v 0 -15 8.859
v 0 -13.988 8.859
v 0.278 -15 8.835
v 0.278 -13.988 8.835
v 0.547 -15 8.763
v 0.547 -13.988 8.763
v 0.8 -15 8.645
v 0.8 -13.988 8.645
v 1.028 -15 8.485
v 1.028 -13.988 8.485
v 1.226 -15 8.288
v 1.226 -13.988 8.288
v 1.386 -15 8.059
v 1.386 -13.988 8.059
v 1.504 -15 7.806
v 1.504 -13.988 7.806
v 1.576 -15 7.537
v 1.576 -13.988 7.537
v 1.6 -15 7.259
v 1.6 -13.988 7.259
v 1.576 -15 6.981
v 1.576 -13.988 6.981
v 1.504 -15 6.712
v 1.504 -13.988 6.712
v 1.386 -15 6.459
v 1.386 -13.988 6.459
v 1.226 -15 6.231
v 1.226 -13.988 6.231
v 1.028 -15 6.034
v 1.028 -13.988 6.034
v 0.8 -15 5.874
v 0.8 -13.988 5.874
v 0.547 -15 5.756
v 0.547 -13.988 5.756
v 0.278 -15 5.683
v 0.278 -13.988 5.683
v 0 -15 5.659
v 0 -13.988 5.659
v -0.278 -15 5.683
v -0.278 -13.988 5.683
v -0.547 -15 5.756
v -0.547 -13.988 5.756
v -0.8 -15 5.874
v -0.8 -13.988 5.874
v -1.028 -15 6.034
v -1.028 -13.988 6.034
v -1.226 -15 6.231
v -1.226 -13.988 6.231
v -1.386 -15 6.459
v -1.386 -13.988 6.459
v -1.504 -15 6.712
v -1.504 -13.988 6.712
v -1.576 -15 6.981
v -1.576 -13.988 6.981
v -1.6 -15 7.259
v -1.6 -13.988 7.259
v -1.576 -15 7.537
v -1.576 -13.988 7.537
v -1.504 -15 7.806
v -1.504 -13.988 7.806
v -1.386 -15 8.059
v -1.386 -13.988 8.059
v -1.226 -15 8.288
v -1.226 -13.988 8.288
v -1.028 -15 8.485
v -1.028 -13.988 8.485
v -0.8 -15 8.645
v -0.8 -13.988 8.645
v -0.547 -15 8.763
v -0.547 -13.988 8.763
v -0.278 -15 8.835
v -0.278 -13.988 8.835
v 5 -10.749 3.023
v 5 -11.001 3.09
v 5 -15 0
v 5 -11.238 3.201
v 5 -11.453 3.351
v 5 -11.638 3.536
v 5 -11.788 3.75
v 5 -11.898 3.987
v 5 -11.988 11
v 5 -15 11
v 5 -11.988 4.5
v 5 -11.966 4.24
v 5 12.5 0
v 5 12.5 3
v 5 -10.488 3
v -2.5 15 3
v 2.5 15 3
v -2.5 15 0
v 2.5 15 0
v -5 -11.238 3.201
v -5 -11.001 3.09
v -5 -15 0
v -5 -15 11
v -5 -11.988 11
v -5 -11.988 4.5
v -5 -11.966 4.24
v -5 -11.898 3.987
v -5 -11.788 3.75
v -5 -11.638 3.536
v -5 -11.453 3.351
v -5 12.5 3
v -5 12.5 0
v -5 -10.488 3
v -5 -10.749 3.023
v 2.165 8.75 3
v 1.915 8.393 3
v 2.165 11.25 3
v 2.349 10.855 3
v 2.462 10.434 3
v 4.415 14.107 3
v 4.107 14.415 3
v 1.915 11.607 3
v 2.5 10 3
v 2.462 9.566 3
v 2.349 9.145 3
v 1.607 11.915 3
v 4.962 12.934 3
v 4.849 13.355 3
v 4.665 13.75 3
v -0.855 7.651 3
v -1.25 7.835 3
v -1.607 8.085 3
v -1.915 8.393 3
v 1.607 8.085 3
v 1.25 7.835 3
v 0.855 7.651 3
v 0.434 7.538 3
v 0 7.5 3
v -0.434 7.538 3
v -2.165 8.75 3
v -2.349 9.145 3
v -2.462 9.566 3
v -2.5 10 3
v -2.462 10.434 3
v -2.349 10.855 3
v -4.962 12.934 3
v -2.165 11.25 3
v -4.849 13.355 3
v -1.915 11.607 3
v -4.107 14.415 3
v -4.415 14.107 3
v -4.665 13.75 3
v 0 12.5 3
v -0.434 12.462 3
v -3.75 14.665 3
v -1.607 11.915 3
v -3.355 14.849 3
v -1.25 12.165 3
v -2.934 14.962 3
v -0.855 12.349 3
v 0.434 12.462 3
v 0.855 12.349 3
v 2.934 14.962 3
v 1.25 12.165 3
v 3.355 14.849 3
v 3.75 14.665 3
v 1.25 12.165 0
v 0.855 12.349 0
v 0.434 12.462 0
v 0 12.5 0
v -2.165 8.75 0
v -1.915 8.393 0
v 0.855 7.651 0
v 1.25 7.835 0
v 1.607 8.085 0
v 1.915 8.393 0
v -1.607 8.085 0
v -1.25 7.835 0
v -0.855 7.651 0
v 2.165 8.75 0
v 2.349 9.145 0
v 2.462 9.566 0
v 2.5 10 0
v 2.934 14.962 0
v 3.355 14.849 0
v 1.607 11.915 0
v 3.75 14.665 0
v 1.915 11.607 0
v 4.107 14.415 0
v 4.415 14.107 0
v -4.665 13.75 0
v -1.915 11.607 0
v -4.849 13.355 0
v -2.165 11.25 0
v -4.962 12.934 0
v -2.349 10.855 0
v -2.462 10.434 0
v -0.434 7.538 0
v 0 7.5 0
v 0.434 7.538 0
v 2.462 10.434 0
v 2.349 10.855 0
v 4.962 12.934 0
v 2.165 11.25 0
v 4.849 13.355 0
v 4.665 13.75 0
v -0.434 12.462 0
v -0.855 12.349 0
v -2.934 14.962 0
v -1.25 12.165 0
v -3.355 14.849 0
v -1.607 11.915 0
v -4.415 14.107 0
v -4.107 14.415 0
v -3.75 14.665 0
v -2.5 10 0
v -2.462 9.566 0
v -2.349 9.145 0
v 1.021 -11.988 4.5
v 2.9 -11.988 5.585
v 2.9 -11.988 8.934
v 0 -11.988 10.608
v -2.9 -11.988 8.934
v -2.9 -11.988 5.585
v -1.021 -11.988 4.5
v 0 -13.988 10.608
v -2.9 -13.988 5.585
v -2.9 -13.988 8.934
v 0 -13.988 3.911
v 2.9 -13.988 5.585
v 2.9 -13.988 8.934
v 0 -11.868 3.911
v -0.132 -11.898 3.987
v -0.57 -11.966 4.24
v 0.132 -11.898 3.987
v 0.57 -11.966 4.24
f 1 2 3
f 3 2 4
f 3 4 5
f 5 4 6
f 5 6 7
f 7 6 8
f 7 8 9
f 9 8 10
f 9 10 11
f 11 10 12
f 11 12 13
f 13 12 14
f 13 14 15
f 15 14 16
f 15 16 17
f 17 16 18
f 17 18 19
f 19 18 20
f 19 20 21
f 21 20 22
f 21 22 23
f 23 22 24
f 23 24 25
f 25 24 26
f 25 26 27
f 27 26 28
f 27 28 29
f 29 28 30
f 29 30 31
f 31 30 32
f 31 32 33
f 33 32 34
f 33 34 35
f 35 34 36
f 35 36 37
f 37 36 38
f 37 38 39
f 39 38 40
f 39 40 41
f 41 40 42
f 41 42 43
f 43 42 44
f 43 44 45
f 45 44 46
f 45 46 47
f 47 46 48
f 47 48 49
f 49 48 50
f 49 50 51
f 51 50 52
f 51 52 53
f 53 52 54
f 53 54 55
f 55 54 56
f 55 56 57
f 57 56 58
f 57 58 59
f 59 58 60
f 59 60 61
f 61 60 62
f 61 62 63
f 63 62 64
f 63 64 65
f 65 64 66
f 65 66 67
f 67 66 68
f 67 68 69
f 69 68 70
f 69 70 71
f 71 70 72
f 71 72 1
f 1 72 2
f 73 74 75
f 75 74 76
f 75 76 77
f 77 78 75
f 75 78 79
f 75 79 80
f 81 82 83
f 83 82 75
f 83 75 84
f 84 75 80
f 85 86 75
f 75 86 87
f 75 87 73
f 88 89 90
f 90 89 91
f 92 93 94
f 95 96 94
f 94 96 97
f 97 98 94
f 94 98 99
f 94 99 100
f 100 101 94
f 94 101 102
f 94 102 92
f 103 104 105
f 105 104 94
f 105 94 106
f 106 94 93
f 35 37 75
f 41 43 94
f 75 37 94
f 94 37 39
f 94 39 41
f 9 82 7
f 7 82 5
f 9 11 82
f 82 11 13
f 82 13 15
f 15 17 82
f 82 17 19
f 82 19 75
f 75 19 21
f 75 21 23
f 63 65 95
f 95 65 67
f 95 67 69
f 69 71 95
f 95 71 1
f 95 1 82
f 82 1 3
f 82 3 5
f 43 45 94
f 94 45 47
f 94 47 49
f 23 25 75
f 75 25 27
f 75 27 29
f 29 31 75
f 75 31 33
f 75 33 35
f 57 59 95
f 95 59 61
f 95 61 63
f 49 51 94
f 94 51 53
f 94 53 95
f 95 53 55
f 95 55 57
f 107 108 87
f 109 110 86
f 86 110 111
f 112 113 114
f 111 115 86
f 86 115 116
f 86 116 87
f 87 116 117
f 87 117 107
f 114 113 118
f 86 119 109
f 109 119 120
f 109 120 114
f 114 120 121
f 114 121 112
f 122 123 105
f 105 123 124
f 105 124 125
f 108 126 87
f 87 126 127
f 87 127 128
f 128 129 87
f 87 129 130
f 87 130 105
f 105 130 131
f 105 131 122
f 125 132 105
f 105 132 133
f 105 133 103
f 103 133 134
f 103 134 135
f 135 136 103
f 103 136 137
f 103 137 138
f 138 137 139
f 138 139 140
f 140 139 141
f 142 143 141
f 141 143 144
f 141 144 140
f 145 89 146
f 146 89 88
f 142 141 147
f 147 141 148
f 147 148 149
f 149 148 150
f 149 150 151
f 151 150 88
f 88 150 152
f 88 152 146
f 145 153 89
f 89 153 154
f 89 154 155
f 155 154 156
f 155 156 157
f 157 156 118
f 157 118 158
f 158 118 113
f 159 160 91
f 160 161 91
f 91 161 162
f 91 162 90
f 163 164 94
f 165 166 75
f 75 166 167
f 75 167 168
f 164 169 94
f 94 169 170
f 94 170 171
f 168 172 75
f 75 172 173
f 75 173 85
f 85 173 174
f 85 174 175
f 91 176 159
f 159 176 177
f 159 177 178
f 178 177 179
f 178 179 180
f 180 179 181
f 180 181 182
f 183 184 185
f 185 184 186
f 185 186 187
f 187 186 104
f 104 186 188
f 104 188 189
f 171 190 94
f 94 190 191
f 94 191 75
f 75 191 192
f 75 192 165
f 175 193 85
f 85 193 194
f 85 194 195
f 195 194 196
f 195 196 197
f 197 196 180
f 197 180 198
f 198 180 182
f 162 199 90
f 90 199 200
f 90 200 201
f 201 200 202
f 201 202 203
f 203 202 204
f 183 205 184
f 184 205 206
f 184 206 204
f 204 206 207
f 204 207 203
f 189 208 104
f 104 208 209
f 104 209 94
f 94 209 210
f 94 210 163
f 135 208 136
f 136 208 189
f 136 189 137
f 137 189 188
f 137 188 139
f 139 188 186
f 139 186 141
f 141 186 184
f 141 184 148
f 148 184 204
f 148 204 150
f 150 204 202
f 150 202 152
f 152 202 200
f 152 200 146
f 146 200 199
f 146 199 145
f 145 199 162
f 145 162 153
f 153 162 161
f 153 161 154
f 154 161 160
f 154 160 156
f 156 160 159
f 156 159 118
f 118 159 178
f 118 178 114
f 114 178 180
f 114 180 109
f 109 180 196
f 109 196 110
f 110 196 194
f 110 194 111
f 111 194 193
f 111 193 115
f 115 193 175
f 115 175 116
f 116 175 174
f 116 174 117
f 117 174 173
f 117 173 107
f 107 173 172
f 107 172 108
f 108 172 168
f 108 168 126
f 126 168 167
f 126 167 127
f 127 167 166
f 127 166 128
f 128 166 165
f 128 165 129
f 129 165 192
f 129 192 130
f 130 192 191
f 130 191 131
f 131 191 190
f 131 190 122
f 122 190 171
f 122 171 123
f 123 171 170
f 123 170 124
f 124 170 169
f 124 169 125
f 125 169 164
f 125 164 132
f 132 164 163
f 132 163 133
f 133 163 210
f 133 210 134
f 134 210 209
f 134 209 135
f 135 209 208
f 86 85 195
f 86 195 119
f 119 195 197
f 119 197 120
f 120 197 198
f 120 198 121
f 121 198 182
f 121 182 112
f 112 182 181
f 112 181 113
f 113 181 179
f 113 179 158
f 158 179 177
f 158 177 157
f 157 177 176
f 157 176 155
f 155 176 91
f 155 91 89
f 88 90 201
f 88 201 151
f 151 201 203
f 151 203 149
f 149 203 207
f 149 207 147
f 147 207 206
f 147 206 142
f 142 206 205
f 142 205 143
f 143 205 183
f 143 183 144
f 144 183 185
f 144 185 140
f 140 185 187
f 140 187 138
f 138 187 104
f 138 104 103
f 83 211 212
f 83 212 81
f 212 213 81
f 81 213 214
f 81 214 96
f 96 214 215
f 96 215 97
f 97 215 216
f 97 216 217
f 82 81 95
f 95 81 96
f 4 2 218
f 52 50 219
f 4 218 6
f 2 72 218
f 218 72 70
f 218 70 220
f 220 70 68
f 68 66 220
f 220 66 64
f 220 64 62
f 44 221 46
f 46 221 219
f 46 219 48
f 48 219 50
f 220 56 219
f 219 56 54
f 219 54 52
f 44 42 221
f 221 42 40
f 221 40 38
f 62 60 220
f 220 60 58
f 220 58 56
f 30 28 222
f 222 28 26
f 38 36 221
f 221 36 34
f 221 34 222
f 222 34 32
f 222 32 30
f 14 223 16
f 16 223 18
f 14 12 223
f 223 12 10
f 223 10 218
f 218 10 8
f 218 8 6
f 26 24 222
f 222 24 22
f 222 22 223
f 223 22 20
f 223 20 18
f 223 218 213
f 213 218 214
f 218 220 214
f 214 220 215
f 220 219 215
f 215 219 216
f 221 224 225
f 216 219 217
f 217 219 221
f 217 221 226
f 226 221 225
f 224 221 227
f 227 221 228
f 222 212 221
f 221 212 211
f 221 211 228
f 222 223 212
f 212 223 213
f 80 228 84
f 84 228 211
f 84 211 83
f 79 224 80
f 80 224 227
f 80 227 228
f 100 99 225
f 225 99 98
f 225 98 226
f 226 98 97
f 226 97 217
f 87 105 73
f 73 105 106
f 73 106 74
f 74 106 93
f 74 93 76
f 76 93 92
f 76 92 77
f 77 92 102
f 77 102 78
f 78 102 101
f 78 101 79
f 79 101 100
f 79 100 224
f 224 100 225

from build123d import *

# Parameters (mm, degrees)
SKETCH_1_W          = 10
SKETCH_1_H          = 30
EXTRUDE_1_DEPTH     = 3
SKETCH_2_R          = 2.5
CUT_EXTRUDE_1_DEPTH = 3
FILLET_2_R          = 2.5
FILLET_3_R          = 2.5
SKETCH_3_W          = 10
SKETCH_3_H          = 3.011531622
EXTRUDE_2_DEPTH     = 8
SKETCH_4_R          = 1.6
CUT_EXTRUDE_2_DEPTH = 7
CUT_EXTRUDE_3_DEPTH = 2
FILLET_4_R          = 1.5


with BuildPart() as part:
    # Эскиз1 → Бобышка-Вытянуть1 (new body)
    with BuildSketch(Plane.XY):
        Rectangle(SKETCH_1_W, SKETCH_1_H)
    extrude(amount=EXTRUDE_1_DEPTH)

    # Эскиз2 → Вырез-Вытянуть1 (cut)
    with BuildSketch(Plane(origin=(0, 0, 0), x_dir=(-1, 0, 0), z_dir=(0, 0, -1))):
        with Locations((0, 10)):
            Circle(SKETCH_2_R)
    extrude(amount=-CUT_EXTRUDE_1_DEPTH, mode=Mode.SUBTRACT)

    # Скругление2
    fillet_2_edges = [part.edges().sort_by_distance(p)[0] for p in [
        (5, 15, 1.5),
    ]]
    fillet(fillet_2_edges, radius=FILLET_2_R)

    # Скругление3
    fillet_3_edges = [part.edges().sort_by_distance(p)[0] for p in [
        (-5, 15, 1.5),
    ]]
    fillet(fillet_3_edges, radius=FILLET_3_R)

    # Эскиз3 → Бобышка-Вытянуть2 (add)
    with BuildSketch(Plane.XY.offset(3)):
        with Locations((0, -13.494234189)):
            Rectangle(SKETCH_3_W, SKETCH_3_H)
    extrude(amount=EXTRUDE_2_DEPTH)

    # Эскиз4 → Вырез-Вытянуть2 (cut)
    with BuildSketch(Plane(origin=(0, -11.988468378, 0), x_dir=(1, 0, 0), z_dir=(0, 1, 0))):
        with Locations(Location((0, -7.259187187, 0), (0, 0, 270))):
            Circle(SKETCH_4_R)
    extrude(amount=-CUT_EXTRUDE_2_DEPTH, mode=Mode.SUBTRACT)

    # Эскиз6 → Вырез-Вытянуть3 (cut)
    with BuildSketch(Plane(origin=(0, -11.988468378, 0), x_dir=(1, 0, 0), z_dir=(0, 1, 0))):
        Polygon((2.9, -8.933502968), (2.9, -5.584871406), (0, -3.910555626), (-2.9, -5.584871406), (-2.9, -8.933502968), (0, -10.607818748), align=None)
    extrude(amount=-CUT_EXTRUDE_3_DEPTH, mode=Mode.SUBTRACT)

    # Скругление4
    # the kernel refuses this fillet: 1.5 mm, written as the material it adds along each edge
    with BuildSketch(Plane(origin=(5, -11.988468378, 3), x_dir=(0, 1, 0), z_dir=(-1, 0, 0))) as fillet_4_piece_1_section:
        with BuildLine():
            CenterArc((FILLET_4_R, -FILLET_4_R), FILLET_4_R, 90, 90)
            Line((0, -FILLET_4_R), (0, 0))
            Line((0, 0), (FILLET_4_R, 0))
        make_face()
    fillet_4_piece_1 = extrude(amount=10, mode=Mode.PRIVATE)
    fillet_4_piece_1 = split(fillet_4_piece_1, bisect_by=Plane(origin=(2.478209897, -11.671443833, 2.479760474), z_dir=(0.49999999999999983, 0, 0.8660254037844388)), keep=Keep.TOP, mode=Mode.PRIVATE)
    fillet_4_piece_1 = split(fillet_4_piece_1, bisect_by=Plane(origin=(2.013101716, -11.671443833, 5.072820443), z_dir=(0.49999999999999994, 0, -0.8660254037844387)), keep=Keep.TOP, mode=Mode.PRIVATE)
    add(fillet_4_piece_1)
    with BuildSketch(Plane(origin=(5, -11.988468378, 3), x_dir=(0, 1, 0), z_dir=(-1, 0, 0))) as fillet_4_piece_2_section:
        with BuildLine():
            CenterArc((FILLET_4_R, -FILLET_4_R), FILLET_4_R, 90, 90)
            Line((0, -FILLET_4_R), (0, 0))
            Line((0, 0), (FILLET_4_R, 0))
        make_face()
    fillet_4_piece_2 = extrude(amount=10, mode=Mode.PRIVATE)
    fillet_4_piece_2 = split(fillet_4_piece_2, bisect_by=Plane(origin=(0.3145023, -11.552147507, 3.728977638), z_dir=(-0.49999999999999983, 0, -0.8660254037844388)), keep=Keep.TOP, mode=Mode.PRIVATE)
    fillet_4_piece_2 = split(fillet_4_piece_2, bisect_by=Plane(origin=(-0.3145023, -11.552147507, 3.728977638), z_dir=(0.49999999999999994, 0, -0.8660254037844387)), keep=Keep.TOP, mode=Mode.PRIVATE)
    add(fillet_4_piece_2)
    with BuildSketch(Plane(origin=(5, -11.988468378, 3), x_dir=(0, 1, 0), z_dir=(-1, 0, 0))) as fillet_4_piece_3_section:
        with BuildLine():
            CenterArc((FILLET_4_R, -FILLET_4_R), FILLET_4_R, 90, 90)
            Line((0, -FILLET_4_R), (0, 0))
            Line((0, 0), (FILLET_4_R, 0))
        make_face()
    fillet_4_piece_3 = extrude(amount=10, mode=Mode.PRIVATE)
    fillet_4_piece_3 = split(fillet_4_piece_3, bisect_by=Plane(origin=(-2.013101716, -11.671443833, 5.072820443), z_dir=(-0.49999999999999983, 0, -0.8660254037844388)), keep=Keep.TOP, mode=Mode.PRIVATE)
    fillet_4_piece_3 = split(fillet_4_piece_3, bisect_by=Plane(origin=(-2.478209897, -11.671443833, 2.479760474), z_dir=(-0.49999999999999994, 0, 0.8660254037844387)), keep=Keep.TOP, mode=Mode.PRIVATE)
    add(fillet_4_piece_3)


solid = part.part
